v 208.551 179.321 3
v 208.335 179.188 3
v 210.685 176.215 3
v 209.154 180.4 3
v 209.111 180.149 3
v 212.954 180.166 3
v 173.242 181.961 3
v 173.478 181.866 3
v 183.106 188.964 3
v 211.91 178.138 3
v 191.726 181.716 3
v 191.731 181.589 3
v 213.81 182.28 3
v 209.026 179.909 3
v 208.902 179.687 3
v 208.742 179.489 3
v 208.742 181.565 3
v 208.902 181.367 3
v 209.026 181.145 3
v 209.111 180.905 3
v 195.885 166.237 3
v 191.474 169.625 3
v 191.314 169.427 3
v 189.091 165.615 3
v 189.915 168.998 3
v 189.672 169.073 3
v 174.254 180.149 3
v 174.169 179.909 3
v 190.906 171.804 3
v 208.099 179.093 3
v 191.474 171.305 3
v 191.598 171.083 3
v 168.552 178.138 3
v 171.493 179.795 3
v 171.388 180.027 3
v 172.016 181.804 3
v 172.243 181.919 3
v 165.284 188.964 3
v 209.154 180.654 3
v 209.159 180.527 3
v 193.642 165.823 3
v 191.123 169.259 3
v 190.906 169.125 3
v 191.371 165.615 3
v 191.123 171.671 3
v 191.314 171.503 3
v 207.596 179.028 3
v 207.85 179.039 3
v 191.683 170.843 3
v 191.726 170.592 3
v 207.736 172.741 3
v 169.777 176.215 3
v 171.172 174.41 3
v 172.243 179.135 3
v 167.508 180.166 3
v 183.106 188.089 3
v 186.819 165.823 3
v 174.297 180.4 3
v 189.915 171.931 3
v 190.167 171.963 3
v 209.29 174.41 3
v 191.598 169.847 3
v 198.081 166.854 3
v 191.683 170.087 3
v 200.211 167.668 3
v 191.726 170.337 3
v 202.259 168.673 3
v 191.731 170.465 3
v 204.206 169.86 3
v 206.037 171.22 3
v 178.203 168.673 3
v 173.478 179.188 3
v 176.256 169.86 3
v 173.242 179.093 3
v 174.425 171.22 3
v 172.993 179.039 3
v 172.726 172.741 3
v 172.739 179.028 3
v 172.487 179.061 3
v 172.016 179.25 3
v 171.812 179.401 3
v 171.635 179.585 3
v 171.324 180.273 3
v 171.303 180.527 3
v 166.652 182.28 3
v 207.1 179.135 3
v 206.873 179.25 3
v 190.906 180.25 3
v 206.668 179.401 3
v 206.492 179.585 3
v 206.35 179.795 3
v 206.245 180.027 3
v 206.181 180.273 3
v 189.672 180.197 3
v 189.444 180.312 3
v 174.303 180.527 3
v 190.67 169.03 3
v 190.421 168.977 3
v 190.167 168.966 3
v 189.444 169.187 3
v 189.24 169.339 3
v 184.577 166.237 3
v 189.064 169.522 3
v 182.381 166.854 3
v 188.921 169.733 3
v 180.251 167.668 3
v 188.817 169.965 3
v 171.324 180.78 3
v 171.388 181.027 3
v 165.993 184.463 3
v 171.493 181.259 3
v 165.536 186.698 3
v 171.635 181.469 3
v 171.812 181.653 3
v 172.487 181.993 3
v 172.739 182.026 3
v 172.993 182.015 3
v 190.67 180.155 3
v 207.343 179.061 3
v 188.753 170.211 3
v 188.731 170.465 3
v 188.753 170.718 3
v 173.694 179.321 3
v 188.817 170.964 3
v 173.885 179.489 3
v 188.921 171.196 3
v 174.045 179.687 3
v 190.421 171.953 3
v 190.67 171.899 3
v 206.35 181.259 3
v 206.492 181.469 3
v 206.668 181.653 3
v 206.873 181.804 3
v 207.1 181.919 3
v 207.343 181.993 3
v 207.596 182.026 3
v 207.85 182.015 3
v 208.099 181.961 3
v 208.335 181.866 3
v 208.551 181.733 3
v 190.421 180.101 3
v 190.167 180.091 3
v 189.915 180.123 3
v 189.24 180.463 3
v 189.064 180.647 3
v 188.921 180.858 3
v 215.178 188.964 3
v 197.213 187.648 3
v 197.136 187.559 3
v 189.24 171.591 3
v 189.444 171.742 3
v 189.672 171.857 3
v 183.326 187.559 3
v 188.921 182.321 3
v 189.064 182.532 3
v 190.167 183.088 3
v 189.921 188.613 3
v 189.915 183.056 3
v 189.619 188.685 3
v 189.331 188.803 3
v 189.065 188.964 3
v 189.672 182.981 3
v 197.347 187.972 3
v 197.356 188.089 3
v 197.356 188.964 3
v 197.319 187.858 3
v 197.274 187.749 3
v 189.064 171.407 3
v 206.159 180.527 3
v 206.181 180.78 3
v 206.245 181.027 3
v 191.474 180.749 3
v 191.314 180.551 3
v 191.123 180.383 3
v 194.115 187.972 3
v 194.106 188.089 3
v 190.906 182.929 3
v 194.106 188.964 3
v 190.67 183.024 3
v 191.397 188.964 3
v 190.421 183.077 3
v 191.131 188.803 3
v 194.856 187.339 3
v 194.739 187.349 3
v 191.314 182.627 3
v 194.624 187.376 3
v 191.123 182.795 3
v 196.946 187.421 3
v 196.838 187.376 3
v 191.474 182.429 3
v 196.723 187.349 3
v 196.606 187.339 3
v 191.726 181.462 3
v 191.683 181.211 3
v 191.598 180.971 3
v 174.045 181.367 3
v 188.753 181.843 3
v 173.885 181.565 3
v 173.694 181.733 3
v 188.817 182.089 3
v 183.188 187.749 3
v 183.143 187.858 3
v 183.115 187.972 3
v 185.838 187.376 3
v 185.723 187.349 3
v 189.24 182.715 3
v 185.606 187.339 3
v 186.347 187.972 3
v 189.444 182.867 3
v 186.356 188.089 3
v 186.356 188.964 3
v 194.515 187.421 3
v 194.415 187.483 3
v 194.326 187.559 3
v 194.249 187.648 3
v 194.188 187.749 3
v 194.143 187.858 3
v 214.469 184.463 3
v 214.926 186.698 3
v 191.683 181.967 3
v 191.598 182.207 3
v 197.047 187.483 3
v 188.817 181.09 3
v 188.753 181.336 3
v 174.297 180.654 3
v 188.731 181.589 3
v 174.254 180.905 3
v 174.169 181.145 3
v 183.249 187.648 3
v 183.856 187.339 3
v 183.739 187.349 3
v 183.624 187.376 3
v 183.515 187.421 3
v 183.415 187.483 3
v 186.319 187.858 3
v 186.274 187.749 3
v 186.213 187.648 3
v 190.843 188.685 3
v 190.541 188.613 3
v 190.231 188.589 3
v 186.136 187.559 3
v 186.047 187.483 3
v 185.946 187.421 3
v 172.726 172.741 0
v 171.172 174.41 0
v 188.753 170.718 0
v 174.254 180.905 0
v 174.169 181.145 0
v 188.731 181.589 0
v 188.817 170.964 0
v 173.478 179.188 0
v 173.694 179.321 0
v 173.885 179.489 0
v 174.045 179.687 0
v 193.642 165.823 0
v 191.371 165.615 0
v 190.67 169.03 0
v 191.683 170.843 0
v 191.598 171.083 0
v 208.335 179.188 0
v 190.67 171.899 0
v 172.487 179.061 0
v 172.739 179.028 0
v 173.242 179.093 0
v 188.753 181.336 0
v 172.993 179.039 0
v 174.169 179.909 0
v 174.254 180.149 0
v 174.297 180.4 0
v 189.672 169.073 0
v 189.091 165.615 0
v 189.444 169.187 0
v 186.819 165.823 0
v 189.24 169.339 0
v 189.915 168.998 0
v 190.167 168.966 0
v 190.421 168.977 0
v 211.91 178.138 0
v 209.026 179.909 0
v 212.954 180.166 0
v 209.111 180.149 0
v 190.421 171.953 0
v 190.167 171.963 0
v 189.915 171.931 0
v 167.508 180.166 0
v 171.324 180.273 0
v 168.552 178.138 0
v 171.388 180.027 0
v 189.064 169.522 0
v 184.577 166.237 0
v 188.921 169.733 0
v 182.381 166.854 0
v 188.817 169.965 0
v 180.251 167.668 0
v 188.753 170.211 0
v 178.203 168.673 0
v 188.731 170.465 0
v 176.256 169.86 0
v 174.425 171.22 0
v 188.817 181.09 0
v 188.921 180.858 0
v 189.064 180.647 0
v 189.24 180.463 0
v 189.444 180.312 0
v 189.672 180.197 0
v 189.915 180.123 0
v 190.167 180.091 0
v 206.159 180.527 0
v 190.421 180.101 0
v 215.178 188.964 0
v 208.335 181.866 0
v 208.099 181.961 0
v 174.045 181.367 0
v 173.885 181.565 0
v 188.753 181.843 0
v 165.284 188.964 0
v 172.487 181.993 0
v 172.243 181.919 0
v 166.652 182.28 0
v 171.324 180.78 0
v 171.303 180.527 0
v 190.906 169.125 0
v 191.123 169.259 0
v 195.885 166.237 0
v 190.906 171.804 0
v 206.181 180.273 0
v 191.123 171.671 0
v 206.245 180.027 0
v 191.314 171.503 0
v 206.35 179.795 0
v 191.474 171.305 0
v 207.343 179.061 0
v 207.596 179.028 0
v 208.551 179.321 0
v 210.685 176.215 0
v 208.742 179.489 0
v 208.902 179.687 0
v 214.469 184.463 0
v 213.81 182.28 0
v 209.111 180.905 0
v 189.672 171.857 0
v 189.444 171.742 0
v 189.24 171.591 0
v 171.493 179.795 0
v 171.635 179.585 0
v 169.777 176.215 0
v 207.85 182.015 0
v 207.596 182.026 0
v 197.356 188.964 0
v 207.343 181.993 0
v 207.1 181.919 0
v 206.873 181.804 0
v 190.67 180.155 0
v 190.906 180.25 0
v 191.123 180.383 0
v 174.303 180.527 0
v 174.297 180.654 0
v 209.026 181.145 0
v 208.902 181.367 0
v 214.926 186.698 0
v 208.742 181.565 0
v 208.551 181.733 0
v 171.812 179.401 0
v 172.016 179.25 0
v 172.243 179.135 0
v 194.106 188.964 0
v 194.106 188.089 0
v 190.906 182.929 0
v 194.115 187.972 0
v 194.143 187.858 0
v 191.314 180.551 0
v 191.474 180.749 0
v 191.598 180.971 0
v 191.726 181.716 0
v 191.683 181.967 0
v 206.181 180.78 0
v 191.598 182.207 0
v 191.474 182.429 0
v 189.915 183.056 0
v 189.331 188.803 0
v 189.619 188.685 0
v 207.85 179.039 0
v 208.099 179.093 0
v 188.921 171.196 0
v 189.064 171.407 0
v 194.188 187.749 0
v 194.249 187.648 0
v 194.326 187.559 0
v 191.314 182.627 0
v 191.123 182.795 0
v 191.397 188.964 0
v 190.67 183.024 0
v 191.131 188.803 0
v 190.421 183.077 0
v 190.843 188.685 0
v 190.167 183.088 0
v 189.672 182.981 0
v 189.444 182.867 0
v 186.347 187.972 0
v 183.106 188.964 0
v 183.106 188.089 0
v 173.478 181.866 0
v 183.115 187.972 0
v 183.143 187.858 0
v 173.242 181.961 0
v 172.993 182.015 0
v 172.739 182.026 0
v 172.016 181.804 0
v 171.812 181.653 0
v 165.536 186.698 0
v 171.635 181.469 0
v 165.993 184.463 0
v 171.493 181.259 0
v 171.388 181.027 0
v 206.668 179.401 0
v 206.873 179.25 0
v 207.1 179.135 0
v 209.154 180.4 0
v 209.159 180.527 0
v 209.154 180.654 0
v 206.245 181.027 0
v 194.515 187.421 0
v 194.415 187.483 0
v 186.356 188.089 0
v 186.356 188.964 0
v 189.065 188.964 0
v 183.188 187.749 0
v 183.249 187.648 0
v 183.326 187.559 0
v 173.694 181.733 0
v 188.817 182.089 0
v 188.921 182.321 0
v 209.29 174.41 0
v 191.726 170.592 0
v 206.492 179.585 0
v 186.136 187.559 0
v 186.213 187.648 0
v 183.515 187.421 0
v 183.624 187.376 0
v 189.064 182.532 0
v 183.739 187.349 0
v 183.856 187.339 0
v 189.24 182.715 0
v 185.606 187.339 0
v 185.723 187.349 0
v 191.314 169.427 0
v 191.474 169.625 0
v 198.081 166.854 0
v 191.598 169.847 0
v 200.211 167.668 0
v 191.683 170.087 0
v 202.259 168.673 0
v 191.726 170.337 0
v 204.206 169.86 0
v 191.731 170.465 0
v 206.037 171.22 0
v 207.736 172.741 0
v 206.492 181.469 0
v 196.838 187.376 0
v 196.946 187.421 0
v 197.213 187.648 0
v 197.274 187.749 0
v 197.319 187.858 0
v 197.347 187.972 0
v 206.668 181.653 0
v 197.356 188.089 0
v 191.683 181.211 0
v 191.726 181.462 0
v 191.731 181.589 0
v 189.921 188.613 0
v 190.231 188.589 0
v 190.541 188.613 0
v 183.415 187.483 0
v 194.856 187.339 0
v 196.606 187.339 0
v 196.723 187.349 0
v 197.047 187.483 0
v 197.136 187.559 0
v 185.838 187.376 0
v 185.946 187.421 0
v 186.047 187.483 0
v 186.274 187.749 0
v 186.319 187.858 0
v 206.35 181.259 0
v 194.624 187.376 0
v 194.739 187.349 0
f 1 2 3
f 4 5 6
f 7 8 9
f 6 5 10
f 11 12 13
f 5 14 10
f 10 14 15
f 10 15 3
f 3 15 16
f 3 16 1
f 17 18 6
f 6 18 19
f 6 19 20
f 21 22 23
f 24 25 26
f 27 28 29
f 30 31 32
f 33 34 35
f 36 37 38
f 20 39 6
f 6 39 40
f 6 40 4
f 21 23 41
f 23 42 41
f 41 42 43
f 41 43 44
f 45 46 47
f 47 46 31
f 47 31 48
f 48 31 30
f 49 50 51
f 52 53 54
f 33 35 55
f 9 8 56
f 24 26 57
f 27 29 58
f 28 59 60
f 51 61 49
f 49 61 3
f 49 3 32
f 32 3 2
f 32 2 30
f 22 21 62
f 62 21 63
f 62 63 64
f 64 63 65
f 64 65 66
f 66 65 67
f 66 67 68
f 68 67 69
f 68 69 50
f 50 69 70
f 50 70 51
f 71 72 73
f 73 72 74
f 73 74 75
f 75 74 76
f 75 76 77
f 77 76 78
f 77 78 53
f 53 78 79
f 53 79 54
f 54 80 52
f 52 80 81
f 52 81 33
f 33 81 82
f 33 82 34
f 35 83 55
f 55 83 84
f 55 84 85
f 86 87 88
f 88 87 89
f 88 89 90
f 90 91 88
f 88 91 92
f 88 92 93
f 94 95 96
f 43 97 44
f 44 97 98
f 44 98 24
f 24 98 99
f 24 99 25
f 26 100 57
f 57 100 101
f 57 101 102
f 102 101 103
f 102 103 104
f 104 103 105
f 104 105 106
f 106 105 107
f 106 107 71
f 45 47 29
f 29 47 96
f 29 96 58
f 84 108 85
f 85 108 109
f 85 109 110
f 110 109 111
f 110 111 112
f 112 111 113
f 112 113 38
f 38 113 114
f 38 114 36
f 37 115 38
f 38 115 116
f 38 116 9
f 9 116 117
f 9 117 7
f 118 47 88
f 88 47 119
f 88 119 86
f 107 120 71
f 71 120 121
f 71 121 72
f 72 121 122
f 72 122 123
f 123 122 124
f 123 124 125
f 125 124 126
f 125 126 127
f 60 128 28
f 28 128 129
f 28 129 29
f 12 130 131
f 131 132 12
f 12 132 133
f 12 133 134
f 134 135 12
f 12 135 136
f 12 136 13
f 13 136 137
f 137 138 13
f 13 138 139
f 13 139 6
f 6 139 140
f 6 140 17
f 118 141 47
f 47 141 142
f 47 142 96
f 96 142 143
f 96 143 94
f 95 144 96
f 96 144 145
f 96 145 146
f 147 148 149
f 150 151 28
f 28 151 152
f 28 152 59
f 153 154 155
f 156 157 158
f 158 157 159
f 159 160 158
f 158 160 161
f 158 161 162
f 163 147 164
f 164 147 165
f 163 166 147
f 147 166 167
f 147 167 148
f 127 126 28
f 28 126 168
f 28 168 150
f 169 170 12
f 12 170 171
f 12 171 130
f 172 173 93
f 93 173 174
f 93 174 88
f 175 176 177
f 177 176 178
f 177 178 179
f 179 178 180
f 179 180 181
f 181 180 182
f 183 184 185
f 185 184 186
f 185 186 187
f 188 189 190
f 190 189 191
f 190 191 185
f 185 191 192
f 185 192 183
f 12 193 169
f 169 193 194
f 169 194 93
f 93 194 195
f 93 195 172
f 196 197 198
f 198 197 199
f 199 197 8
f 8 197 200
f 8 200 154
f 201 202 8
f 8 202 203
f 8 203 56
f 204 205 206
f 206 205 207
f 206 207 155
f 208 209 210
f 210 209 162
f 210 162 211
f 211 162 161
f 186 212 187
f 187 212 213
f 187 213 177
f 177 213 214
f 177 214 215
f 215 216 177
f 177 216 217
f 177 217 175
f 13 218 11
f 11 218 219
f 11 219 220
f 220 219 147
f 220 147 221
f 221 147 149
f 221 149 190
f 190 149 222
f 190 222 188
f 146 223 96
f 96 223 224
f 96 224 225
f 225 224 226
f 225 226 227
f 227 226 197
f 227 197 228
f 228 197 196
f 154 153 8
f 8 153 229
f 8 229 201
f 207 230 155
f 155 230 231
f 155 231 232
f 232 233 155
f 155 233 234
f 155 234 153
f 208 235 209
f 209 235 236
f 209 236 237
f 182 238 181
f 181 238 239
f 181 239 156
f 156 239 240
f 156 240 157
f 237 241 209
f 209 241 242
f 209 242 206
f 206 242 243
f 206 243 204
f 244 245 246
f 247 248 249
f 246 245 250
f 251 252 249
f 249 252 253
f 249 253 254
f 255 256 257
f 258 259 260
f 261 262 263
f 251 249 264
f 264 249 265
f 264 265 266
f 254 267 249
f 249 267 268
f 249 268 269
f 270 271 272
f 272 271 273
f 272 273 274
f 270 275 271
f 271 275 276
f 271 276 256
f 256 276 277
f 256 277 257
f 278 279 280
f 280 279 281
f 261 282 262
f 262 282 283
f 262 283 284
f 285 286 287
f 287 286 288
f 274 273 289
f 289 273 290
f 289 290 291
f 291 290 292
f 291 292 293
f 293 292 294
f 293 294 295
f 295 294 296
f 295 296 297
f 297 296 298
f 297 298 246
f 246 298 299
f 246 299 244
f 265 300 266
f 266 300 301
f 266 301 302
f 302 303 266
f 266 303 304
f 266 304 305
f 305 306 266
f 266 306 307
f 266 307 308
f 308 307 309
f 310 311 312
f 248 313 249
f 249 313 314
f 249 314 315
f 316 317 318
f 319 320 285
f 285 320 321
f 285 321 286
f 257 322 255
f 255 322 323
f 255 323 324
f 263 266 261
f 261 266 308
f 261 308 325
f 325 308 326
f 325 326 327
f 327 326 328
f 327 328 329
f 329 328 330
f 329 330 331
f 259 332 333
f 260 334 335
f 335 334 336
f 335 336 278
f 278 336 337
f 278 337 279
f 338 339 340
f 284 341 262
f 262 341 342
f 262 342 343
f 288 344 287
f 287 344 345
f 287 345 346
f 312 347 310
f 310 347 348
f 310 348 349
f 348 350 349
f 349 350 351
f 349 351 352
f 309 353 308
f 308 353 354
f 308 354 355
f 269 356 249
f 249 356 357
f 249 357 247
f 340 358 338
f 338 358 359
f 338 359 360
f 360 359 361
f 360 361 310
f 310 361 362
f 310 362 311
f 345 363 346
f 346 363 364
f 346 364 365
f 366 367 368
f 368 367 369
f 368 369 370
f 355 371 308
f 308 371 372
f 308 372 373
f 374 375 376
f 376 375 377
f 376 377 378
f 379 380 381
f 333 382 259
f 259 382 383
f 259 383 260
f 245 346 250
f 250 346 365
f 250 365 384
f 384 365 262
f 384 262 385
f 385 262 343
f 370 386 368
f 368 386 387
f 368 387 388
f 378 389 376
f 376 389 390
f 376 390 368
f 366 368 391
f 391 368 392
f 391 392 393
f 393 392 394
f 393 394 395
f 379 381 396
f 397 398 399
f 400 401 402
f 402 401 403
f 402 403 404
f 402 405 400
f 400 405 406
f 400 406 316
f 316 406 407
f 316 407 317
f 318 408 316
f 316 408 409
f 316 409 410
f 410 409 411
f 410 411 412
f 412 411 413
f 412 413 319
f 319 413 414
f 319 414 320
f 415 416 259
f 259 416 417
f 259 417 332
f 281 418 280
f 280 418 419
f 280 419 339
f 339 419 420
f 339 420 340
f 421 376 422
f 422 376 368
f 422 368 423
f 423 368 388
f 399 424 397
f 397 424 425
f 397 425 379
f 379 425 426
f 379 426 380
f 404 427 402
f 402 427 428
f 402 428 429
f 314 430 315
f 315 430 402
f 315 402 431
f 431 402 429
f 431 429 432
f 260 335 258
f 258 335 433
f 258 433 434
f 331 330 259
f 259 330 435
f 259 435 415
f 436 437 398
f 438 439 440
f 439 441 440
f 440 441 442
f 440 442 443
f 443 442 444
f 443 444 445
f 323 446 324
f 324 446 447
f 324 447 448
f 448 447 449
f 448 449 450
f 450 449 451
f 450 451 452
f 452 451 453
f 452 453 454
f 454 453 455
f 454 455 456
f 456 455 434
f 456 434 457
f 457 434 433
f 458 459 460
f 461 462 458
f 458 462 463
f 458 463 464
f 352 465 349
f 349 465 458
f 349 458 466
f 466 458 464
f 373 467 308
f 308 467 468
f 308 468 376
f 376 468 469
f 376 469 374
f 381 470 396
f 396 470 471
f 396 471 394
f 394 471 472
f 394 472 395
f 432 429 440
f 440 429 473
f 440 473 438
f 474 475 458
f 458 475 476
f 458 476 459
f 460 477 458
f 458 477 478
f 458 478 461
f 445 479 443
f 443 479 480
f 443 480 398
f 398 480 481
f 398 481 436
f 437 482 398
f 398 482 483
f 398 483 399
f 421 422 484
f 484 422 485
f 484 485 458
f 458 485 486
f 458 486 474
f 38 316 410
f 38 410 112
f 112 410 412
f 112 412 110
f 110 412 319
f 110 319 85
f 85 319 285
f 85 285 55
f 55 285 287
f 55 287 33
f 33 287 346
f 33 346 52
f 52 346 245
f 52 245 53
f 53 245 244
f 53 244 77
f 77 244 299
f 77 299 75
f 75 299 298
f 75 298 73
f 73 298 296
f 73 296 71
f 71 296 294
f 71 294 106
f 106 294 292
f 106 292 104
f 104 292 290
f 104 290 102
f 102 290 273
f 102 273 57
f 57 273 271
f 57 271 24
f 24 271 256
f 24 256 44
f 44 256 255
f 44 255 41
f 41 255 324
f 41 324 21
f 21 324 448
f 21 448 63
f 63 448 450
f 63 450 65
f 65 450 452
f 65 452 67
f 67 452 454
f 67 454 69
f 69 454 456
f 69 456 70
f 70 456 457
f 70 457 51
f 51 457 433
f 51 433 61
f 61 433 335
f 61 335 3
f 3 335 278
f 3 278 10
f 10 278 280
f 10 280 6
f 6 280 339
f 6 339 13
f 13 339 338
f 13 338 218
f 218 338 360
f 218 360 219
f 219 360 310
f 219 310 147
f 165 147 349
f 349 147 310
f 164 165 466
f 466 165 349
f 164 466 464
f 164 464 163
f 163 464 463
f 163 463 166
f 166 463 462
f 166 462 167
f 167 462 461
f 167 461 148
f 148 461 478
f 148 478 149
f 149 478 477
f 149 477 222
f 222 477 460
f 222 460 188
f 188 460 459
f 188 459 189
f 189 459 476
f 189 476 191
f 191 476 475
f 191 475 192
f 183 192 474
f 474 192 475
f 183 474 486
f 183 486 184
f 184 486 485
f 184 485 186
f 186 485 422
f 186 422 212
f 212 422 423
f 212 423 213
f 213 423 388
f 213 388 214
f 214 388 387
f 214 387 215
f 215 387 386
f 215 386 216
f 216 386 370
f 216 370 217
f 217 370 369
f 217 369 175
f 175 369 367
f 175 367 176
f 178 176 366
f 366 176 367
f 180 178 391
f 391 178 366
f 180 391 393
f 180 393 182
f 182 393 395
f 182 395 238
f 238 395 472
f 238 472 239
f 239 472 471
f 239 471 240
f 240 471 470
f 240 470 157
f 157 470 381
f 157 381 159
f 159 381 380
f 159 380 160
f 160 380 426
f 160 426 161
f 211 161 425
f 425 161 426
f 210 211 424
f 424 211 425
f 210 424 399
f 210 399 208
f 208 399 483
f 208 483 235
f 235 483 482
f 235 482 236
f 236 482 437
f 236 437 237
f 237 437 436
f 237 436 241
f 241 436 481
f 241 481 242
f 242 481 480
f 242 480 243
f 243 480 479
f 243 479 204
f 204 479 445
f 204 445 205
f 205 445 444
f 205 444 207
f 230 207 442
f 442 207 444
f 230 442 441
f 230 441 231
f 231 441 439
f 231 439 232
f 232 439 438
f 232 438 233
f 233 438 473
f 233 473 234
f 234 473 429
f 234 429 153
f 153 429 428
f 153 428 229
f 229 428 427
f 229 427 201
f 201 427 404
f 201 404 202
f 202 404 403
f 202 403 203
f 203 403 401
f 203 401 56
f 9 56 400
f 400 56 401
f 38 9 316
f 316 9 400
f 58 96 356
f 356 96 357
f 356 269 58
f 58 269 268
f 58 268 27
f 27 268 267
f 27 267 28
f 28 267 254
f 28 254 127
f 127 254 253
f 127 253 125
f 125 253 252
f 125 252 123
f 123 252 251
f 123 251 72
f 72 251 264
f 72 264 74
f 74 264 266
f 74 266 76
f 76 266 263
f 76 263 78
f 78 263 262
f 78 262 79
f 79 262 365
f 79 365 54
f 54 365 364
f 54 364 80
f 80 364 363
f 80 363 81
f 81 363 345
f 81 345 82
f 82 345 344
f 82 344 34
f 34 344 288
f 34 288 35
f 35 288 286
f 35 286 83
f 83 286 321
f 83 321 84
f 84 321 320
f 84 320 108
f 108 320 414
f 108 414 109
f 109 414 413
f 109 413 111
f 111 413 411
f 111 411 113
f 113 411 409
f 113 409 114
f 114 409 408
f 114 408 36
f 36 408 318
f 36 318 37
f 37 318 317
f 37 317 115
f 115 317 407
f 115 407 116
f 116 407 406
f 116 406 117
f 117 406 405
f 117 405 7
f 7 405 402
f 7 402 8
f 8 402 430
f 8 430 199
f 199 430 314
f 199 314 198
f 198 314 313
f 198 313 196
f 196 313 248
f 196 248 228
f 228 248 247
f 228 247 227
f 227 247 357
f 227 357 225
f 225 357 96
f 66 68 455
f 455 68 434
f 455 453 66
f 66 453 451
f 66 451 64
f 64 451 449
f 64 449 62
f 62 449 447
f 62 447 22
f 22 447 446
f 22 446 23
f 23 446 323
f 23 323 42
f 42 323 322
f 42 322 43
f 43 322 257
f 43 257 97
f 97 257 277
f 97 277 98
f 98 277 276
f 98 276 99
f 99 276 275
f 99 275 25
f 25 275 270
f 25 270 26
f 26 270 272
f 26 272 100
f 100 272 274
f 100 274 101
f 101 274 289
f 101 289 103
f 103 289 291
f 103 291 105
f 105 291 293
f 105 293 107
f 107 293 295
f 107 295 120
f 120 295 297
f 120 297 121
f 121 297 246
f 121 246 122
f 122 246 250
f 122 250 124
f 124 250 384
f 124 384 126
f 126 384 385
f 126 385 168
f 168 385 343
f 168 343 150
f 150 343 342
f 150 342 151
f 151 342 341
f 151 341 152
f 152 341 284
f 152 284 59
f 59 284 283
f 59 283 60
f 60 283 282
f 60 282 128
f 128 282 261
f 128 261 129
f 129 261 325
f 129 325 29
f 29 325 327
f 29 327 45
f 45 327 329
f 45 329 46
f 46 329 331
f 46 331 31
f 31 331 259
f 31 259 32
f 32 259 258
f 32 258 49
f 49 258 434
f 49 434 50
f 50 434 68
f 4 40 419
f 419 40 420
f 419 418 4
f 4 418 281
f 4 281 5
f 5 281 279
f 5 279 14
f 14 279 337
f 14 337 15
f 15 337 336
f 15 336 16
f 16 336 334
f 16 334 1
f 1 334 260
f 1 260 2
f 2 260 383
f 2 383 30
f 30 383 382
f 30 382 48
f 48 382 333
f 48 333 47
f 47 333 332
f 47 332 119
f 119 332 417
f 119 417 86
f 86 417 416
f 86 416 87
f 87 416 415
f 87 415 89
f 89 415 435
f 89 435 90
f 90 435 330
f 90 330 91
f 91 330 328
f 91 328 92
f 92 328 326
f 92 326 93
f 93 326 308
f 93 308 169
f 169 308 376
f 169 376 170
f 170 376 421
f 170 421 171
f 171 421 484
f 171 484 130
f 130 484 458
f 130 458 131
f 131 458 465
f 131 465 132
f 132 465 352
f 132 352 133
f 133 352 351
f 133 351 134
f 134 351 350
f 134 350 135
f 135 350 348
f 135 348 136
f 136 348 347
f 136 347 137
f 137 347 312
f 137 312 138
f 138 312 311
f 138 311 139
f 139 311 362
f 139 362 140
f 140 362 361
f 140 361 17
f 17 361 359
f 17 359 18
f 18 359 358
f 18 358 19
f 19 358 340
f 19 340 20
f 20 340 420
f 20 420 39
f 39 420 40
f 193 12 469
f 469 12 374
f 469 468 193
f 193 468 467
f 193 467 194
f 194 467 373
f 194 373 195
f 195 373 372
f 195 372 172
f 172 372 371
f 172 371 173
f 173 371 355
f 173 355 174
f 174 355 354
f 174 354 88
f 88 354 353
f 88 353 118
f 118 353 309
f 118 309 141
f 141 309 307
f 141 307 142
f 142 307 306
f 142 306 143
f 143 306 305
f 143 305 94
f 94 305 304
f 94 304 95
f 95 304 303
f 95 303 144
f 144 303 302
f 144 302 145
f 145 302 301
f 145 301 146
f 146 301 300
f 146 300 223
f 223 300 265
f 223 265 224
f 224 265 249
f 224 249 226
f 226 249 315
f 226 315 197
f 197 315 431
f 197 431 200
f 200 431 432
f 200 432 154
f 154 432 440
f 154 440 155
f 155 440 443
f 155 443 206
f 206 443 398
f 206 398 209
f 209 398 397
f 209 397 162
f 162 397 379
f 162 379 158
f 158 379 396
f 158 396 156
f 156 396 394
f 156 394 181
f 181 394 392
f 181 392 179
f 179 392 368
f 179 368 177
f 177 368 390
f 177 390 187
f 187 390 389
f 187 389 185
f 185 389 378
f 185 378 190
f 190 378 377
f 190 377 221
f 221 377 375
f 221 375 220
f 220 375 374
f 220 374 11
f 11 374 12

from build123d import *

# Parameters (mm, degrees)
MODEL_R                 = 1.5
SALIENTE_EXTRUIR1_DEPTH = 3


with BuildPart() as part:
    # Model → Saliente-Extruir1 (new body)
    with BuildSketch(Plane.XY):
        with BuildLine():
            Line((191.396871733, 188.964281637), (194.105949351, 188.964281637))
            Line((194.105949351, 188.964281637), (194.105949351, 188.089281637))
            ThreePointArc((194.105949351, 188.089281637), (194.325619265, 187.558951551), (194.855949351, 187.339281637))
            Line((194.855949351, 187.339281637), (196.605949351, 187.339281637))
            ThreePointArc((196.605949351, 187.339281637), (197.136279437, 187.558951551), (197.355949351, 188.089281637))
            Line((197.355949351, 188.089281637), (197.355949351, 188.964281637))
            Line((197.355949351, 188.964281637), (215.17808095, 188.964281637))
            ThreePointArc((215.17808095, 188.964281637), (208.476468276, 173.498317967), (193.480949351, 165.80143179))
            ThreePointArc((193.480949351, 165.80143179), (174.362087289, 171.27143453), (165.283817753, 188.964281637))
            Line((165.283817753, 188.964281637), (183.105949351, 188.964281637))
            Line((183.105949351, 188.964281637), (183.105949351, 188.089281637))
            ThreePointArc((183.105949351, 188.089281637), (183.325619265, 187.558951551), (183.855949351, 187.339281637))
            Line((183.855949351, 187.339281637), (185.605949351, 187.339281637))
            ThreePointArc((185.605949351, 187.339281637), (186.136279437, 187.558951551), (186.355949351, 188.089281637))
            Line((186.355949351, 188.089281637), (186.355949351, 188.964281637))
            Line((186.355949351, 188.964281637), (189.06502697, 188.964281637))
            ThreePointArc((189.06502697, 188.964281637), (190.230949351, 188.589281637), (191.396871733, 188.964281637))
        make_face()
        with Locations((172.802524293, 180.526975738)):
            Circle(MODEL_R, mode=Mode.SUBTRACT)
        with Locations((190.230949351, 170.464669839)):
            Circle(MODEL_R, mode=Mode.SUBTRACT)
        with Locations((207.659374409, 180.526975738)):
            Circle(MODEL_R, mode=Mode.SUBTRACT)
        with Locations((190.230949351, 181.589281637)):
            Circle(MODEL_R, mode=Mode.SUBTRACT)
    extrude(amount=SALIENTE_EXTRUIR1_DEPTH)


solid = part.part
